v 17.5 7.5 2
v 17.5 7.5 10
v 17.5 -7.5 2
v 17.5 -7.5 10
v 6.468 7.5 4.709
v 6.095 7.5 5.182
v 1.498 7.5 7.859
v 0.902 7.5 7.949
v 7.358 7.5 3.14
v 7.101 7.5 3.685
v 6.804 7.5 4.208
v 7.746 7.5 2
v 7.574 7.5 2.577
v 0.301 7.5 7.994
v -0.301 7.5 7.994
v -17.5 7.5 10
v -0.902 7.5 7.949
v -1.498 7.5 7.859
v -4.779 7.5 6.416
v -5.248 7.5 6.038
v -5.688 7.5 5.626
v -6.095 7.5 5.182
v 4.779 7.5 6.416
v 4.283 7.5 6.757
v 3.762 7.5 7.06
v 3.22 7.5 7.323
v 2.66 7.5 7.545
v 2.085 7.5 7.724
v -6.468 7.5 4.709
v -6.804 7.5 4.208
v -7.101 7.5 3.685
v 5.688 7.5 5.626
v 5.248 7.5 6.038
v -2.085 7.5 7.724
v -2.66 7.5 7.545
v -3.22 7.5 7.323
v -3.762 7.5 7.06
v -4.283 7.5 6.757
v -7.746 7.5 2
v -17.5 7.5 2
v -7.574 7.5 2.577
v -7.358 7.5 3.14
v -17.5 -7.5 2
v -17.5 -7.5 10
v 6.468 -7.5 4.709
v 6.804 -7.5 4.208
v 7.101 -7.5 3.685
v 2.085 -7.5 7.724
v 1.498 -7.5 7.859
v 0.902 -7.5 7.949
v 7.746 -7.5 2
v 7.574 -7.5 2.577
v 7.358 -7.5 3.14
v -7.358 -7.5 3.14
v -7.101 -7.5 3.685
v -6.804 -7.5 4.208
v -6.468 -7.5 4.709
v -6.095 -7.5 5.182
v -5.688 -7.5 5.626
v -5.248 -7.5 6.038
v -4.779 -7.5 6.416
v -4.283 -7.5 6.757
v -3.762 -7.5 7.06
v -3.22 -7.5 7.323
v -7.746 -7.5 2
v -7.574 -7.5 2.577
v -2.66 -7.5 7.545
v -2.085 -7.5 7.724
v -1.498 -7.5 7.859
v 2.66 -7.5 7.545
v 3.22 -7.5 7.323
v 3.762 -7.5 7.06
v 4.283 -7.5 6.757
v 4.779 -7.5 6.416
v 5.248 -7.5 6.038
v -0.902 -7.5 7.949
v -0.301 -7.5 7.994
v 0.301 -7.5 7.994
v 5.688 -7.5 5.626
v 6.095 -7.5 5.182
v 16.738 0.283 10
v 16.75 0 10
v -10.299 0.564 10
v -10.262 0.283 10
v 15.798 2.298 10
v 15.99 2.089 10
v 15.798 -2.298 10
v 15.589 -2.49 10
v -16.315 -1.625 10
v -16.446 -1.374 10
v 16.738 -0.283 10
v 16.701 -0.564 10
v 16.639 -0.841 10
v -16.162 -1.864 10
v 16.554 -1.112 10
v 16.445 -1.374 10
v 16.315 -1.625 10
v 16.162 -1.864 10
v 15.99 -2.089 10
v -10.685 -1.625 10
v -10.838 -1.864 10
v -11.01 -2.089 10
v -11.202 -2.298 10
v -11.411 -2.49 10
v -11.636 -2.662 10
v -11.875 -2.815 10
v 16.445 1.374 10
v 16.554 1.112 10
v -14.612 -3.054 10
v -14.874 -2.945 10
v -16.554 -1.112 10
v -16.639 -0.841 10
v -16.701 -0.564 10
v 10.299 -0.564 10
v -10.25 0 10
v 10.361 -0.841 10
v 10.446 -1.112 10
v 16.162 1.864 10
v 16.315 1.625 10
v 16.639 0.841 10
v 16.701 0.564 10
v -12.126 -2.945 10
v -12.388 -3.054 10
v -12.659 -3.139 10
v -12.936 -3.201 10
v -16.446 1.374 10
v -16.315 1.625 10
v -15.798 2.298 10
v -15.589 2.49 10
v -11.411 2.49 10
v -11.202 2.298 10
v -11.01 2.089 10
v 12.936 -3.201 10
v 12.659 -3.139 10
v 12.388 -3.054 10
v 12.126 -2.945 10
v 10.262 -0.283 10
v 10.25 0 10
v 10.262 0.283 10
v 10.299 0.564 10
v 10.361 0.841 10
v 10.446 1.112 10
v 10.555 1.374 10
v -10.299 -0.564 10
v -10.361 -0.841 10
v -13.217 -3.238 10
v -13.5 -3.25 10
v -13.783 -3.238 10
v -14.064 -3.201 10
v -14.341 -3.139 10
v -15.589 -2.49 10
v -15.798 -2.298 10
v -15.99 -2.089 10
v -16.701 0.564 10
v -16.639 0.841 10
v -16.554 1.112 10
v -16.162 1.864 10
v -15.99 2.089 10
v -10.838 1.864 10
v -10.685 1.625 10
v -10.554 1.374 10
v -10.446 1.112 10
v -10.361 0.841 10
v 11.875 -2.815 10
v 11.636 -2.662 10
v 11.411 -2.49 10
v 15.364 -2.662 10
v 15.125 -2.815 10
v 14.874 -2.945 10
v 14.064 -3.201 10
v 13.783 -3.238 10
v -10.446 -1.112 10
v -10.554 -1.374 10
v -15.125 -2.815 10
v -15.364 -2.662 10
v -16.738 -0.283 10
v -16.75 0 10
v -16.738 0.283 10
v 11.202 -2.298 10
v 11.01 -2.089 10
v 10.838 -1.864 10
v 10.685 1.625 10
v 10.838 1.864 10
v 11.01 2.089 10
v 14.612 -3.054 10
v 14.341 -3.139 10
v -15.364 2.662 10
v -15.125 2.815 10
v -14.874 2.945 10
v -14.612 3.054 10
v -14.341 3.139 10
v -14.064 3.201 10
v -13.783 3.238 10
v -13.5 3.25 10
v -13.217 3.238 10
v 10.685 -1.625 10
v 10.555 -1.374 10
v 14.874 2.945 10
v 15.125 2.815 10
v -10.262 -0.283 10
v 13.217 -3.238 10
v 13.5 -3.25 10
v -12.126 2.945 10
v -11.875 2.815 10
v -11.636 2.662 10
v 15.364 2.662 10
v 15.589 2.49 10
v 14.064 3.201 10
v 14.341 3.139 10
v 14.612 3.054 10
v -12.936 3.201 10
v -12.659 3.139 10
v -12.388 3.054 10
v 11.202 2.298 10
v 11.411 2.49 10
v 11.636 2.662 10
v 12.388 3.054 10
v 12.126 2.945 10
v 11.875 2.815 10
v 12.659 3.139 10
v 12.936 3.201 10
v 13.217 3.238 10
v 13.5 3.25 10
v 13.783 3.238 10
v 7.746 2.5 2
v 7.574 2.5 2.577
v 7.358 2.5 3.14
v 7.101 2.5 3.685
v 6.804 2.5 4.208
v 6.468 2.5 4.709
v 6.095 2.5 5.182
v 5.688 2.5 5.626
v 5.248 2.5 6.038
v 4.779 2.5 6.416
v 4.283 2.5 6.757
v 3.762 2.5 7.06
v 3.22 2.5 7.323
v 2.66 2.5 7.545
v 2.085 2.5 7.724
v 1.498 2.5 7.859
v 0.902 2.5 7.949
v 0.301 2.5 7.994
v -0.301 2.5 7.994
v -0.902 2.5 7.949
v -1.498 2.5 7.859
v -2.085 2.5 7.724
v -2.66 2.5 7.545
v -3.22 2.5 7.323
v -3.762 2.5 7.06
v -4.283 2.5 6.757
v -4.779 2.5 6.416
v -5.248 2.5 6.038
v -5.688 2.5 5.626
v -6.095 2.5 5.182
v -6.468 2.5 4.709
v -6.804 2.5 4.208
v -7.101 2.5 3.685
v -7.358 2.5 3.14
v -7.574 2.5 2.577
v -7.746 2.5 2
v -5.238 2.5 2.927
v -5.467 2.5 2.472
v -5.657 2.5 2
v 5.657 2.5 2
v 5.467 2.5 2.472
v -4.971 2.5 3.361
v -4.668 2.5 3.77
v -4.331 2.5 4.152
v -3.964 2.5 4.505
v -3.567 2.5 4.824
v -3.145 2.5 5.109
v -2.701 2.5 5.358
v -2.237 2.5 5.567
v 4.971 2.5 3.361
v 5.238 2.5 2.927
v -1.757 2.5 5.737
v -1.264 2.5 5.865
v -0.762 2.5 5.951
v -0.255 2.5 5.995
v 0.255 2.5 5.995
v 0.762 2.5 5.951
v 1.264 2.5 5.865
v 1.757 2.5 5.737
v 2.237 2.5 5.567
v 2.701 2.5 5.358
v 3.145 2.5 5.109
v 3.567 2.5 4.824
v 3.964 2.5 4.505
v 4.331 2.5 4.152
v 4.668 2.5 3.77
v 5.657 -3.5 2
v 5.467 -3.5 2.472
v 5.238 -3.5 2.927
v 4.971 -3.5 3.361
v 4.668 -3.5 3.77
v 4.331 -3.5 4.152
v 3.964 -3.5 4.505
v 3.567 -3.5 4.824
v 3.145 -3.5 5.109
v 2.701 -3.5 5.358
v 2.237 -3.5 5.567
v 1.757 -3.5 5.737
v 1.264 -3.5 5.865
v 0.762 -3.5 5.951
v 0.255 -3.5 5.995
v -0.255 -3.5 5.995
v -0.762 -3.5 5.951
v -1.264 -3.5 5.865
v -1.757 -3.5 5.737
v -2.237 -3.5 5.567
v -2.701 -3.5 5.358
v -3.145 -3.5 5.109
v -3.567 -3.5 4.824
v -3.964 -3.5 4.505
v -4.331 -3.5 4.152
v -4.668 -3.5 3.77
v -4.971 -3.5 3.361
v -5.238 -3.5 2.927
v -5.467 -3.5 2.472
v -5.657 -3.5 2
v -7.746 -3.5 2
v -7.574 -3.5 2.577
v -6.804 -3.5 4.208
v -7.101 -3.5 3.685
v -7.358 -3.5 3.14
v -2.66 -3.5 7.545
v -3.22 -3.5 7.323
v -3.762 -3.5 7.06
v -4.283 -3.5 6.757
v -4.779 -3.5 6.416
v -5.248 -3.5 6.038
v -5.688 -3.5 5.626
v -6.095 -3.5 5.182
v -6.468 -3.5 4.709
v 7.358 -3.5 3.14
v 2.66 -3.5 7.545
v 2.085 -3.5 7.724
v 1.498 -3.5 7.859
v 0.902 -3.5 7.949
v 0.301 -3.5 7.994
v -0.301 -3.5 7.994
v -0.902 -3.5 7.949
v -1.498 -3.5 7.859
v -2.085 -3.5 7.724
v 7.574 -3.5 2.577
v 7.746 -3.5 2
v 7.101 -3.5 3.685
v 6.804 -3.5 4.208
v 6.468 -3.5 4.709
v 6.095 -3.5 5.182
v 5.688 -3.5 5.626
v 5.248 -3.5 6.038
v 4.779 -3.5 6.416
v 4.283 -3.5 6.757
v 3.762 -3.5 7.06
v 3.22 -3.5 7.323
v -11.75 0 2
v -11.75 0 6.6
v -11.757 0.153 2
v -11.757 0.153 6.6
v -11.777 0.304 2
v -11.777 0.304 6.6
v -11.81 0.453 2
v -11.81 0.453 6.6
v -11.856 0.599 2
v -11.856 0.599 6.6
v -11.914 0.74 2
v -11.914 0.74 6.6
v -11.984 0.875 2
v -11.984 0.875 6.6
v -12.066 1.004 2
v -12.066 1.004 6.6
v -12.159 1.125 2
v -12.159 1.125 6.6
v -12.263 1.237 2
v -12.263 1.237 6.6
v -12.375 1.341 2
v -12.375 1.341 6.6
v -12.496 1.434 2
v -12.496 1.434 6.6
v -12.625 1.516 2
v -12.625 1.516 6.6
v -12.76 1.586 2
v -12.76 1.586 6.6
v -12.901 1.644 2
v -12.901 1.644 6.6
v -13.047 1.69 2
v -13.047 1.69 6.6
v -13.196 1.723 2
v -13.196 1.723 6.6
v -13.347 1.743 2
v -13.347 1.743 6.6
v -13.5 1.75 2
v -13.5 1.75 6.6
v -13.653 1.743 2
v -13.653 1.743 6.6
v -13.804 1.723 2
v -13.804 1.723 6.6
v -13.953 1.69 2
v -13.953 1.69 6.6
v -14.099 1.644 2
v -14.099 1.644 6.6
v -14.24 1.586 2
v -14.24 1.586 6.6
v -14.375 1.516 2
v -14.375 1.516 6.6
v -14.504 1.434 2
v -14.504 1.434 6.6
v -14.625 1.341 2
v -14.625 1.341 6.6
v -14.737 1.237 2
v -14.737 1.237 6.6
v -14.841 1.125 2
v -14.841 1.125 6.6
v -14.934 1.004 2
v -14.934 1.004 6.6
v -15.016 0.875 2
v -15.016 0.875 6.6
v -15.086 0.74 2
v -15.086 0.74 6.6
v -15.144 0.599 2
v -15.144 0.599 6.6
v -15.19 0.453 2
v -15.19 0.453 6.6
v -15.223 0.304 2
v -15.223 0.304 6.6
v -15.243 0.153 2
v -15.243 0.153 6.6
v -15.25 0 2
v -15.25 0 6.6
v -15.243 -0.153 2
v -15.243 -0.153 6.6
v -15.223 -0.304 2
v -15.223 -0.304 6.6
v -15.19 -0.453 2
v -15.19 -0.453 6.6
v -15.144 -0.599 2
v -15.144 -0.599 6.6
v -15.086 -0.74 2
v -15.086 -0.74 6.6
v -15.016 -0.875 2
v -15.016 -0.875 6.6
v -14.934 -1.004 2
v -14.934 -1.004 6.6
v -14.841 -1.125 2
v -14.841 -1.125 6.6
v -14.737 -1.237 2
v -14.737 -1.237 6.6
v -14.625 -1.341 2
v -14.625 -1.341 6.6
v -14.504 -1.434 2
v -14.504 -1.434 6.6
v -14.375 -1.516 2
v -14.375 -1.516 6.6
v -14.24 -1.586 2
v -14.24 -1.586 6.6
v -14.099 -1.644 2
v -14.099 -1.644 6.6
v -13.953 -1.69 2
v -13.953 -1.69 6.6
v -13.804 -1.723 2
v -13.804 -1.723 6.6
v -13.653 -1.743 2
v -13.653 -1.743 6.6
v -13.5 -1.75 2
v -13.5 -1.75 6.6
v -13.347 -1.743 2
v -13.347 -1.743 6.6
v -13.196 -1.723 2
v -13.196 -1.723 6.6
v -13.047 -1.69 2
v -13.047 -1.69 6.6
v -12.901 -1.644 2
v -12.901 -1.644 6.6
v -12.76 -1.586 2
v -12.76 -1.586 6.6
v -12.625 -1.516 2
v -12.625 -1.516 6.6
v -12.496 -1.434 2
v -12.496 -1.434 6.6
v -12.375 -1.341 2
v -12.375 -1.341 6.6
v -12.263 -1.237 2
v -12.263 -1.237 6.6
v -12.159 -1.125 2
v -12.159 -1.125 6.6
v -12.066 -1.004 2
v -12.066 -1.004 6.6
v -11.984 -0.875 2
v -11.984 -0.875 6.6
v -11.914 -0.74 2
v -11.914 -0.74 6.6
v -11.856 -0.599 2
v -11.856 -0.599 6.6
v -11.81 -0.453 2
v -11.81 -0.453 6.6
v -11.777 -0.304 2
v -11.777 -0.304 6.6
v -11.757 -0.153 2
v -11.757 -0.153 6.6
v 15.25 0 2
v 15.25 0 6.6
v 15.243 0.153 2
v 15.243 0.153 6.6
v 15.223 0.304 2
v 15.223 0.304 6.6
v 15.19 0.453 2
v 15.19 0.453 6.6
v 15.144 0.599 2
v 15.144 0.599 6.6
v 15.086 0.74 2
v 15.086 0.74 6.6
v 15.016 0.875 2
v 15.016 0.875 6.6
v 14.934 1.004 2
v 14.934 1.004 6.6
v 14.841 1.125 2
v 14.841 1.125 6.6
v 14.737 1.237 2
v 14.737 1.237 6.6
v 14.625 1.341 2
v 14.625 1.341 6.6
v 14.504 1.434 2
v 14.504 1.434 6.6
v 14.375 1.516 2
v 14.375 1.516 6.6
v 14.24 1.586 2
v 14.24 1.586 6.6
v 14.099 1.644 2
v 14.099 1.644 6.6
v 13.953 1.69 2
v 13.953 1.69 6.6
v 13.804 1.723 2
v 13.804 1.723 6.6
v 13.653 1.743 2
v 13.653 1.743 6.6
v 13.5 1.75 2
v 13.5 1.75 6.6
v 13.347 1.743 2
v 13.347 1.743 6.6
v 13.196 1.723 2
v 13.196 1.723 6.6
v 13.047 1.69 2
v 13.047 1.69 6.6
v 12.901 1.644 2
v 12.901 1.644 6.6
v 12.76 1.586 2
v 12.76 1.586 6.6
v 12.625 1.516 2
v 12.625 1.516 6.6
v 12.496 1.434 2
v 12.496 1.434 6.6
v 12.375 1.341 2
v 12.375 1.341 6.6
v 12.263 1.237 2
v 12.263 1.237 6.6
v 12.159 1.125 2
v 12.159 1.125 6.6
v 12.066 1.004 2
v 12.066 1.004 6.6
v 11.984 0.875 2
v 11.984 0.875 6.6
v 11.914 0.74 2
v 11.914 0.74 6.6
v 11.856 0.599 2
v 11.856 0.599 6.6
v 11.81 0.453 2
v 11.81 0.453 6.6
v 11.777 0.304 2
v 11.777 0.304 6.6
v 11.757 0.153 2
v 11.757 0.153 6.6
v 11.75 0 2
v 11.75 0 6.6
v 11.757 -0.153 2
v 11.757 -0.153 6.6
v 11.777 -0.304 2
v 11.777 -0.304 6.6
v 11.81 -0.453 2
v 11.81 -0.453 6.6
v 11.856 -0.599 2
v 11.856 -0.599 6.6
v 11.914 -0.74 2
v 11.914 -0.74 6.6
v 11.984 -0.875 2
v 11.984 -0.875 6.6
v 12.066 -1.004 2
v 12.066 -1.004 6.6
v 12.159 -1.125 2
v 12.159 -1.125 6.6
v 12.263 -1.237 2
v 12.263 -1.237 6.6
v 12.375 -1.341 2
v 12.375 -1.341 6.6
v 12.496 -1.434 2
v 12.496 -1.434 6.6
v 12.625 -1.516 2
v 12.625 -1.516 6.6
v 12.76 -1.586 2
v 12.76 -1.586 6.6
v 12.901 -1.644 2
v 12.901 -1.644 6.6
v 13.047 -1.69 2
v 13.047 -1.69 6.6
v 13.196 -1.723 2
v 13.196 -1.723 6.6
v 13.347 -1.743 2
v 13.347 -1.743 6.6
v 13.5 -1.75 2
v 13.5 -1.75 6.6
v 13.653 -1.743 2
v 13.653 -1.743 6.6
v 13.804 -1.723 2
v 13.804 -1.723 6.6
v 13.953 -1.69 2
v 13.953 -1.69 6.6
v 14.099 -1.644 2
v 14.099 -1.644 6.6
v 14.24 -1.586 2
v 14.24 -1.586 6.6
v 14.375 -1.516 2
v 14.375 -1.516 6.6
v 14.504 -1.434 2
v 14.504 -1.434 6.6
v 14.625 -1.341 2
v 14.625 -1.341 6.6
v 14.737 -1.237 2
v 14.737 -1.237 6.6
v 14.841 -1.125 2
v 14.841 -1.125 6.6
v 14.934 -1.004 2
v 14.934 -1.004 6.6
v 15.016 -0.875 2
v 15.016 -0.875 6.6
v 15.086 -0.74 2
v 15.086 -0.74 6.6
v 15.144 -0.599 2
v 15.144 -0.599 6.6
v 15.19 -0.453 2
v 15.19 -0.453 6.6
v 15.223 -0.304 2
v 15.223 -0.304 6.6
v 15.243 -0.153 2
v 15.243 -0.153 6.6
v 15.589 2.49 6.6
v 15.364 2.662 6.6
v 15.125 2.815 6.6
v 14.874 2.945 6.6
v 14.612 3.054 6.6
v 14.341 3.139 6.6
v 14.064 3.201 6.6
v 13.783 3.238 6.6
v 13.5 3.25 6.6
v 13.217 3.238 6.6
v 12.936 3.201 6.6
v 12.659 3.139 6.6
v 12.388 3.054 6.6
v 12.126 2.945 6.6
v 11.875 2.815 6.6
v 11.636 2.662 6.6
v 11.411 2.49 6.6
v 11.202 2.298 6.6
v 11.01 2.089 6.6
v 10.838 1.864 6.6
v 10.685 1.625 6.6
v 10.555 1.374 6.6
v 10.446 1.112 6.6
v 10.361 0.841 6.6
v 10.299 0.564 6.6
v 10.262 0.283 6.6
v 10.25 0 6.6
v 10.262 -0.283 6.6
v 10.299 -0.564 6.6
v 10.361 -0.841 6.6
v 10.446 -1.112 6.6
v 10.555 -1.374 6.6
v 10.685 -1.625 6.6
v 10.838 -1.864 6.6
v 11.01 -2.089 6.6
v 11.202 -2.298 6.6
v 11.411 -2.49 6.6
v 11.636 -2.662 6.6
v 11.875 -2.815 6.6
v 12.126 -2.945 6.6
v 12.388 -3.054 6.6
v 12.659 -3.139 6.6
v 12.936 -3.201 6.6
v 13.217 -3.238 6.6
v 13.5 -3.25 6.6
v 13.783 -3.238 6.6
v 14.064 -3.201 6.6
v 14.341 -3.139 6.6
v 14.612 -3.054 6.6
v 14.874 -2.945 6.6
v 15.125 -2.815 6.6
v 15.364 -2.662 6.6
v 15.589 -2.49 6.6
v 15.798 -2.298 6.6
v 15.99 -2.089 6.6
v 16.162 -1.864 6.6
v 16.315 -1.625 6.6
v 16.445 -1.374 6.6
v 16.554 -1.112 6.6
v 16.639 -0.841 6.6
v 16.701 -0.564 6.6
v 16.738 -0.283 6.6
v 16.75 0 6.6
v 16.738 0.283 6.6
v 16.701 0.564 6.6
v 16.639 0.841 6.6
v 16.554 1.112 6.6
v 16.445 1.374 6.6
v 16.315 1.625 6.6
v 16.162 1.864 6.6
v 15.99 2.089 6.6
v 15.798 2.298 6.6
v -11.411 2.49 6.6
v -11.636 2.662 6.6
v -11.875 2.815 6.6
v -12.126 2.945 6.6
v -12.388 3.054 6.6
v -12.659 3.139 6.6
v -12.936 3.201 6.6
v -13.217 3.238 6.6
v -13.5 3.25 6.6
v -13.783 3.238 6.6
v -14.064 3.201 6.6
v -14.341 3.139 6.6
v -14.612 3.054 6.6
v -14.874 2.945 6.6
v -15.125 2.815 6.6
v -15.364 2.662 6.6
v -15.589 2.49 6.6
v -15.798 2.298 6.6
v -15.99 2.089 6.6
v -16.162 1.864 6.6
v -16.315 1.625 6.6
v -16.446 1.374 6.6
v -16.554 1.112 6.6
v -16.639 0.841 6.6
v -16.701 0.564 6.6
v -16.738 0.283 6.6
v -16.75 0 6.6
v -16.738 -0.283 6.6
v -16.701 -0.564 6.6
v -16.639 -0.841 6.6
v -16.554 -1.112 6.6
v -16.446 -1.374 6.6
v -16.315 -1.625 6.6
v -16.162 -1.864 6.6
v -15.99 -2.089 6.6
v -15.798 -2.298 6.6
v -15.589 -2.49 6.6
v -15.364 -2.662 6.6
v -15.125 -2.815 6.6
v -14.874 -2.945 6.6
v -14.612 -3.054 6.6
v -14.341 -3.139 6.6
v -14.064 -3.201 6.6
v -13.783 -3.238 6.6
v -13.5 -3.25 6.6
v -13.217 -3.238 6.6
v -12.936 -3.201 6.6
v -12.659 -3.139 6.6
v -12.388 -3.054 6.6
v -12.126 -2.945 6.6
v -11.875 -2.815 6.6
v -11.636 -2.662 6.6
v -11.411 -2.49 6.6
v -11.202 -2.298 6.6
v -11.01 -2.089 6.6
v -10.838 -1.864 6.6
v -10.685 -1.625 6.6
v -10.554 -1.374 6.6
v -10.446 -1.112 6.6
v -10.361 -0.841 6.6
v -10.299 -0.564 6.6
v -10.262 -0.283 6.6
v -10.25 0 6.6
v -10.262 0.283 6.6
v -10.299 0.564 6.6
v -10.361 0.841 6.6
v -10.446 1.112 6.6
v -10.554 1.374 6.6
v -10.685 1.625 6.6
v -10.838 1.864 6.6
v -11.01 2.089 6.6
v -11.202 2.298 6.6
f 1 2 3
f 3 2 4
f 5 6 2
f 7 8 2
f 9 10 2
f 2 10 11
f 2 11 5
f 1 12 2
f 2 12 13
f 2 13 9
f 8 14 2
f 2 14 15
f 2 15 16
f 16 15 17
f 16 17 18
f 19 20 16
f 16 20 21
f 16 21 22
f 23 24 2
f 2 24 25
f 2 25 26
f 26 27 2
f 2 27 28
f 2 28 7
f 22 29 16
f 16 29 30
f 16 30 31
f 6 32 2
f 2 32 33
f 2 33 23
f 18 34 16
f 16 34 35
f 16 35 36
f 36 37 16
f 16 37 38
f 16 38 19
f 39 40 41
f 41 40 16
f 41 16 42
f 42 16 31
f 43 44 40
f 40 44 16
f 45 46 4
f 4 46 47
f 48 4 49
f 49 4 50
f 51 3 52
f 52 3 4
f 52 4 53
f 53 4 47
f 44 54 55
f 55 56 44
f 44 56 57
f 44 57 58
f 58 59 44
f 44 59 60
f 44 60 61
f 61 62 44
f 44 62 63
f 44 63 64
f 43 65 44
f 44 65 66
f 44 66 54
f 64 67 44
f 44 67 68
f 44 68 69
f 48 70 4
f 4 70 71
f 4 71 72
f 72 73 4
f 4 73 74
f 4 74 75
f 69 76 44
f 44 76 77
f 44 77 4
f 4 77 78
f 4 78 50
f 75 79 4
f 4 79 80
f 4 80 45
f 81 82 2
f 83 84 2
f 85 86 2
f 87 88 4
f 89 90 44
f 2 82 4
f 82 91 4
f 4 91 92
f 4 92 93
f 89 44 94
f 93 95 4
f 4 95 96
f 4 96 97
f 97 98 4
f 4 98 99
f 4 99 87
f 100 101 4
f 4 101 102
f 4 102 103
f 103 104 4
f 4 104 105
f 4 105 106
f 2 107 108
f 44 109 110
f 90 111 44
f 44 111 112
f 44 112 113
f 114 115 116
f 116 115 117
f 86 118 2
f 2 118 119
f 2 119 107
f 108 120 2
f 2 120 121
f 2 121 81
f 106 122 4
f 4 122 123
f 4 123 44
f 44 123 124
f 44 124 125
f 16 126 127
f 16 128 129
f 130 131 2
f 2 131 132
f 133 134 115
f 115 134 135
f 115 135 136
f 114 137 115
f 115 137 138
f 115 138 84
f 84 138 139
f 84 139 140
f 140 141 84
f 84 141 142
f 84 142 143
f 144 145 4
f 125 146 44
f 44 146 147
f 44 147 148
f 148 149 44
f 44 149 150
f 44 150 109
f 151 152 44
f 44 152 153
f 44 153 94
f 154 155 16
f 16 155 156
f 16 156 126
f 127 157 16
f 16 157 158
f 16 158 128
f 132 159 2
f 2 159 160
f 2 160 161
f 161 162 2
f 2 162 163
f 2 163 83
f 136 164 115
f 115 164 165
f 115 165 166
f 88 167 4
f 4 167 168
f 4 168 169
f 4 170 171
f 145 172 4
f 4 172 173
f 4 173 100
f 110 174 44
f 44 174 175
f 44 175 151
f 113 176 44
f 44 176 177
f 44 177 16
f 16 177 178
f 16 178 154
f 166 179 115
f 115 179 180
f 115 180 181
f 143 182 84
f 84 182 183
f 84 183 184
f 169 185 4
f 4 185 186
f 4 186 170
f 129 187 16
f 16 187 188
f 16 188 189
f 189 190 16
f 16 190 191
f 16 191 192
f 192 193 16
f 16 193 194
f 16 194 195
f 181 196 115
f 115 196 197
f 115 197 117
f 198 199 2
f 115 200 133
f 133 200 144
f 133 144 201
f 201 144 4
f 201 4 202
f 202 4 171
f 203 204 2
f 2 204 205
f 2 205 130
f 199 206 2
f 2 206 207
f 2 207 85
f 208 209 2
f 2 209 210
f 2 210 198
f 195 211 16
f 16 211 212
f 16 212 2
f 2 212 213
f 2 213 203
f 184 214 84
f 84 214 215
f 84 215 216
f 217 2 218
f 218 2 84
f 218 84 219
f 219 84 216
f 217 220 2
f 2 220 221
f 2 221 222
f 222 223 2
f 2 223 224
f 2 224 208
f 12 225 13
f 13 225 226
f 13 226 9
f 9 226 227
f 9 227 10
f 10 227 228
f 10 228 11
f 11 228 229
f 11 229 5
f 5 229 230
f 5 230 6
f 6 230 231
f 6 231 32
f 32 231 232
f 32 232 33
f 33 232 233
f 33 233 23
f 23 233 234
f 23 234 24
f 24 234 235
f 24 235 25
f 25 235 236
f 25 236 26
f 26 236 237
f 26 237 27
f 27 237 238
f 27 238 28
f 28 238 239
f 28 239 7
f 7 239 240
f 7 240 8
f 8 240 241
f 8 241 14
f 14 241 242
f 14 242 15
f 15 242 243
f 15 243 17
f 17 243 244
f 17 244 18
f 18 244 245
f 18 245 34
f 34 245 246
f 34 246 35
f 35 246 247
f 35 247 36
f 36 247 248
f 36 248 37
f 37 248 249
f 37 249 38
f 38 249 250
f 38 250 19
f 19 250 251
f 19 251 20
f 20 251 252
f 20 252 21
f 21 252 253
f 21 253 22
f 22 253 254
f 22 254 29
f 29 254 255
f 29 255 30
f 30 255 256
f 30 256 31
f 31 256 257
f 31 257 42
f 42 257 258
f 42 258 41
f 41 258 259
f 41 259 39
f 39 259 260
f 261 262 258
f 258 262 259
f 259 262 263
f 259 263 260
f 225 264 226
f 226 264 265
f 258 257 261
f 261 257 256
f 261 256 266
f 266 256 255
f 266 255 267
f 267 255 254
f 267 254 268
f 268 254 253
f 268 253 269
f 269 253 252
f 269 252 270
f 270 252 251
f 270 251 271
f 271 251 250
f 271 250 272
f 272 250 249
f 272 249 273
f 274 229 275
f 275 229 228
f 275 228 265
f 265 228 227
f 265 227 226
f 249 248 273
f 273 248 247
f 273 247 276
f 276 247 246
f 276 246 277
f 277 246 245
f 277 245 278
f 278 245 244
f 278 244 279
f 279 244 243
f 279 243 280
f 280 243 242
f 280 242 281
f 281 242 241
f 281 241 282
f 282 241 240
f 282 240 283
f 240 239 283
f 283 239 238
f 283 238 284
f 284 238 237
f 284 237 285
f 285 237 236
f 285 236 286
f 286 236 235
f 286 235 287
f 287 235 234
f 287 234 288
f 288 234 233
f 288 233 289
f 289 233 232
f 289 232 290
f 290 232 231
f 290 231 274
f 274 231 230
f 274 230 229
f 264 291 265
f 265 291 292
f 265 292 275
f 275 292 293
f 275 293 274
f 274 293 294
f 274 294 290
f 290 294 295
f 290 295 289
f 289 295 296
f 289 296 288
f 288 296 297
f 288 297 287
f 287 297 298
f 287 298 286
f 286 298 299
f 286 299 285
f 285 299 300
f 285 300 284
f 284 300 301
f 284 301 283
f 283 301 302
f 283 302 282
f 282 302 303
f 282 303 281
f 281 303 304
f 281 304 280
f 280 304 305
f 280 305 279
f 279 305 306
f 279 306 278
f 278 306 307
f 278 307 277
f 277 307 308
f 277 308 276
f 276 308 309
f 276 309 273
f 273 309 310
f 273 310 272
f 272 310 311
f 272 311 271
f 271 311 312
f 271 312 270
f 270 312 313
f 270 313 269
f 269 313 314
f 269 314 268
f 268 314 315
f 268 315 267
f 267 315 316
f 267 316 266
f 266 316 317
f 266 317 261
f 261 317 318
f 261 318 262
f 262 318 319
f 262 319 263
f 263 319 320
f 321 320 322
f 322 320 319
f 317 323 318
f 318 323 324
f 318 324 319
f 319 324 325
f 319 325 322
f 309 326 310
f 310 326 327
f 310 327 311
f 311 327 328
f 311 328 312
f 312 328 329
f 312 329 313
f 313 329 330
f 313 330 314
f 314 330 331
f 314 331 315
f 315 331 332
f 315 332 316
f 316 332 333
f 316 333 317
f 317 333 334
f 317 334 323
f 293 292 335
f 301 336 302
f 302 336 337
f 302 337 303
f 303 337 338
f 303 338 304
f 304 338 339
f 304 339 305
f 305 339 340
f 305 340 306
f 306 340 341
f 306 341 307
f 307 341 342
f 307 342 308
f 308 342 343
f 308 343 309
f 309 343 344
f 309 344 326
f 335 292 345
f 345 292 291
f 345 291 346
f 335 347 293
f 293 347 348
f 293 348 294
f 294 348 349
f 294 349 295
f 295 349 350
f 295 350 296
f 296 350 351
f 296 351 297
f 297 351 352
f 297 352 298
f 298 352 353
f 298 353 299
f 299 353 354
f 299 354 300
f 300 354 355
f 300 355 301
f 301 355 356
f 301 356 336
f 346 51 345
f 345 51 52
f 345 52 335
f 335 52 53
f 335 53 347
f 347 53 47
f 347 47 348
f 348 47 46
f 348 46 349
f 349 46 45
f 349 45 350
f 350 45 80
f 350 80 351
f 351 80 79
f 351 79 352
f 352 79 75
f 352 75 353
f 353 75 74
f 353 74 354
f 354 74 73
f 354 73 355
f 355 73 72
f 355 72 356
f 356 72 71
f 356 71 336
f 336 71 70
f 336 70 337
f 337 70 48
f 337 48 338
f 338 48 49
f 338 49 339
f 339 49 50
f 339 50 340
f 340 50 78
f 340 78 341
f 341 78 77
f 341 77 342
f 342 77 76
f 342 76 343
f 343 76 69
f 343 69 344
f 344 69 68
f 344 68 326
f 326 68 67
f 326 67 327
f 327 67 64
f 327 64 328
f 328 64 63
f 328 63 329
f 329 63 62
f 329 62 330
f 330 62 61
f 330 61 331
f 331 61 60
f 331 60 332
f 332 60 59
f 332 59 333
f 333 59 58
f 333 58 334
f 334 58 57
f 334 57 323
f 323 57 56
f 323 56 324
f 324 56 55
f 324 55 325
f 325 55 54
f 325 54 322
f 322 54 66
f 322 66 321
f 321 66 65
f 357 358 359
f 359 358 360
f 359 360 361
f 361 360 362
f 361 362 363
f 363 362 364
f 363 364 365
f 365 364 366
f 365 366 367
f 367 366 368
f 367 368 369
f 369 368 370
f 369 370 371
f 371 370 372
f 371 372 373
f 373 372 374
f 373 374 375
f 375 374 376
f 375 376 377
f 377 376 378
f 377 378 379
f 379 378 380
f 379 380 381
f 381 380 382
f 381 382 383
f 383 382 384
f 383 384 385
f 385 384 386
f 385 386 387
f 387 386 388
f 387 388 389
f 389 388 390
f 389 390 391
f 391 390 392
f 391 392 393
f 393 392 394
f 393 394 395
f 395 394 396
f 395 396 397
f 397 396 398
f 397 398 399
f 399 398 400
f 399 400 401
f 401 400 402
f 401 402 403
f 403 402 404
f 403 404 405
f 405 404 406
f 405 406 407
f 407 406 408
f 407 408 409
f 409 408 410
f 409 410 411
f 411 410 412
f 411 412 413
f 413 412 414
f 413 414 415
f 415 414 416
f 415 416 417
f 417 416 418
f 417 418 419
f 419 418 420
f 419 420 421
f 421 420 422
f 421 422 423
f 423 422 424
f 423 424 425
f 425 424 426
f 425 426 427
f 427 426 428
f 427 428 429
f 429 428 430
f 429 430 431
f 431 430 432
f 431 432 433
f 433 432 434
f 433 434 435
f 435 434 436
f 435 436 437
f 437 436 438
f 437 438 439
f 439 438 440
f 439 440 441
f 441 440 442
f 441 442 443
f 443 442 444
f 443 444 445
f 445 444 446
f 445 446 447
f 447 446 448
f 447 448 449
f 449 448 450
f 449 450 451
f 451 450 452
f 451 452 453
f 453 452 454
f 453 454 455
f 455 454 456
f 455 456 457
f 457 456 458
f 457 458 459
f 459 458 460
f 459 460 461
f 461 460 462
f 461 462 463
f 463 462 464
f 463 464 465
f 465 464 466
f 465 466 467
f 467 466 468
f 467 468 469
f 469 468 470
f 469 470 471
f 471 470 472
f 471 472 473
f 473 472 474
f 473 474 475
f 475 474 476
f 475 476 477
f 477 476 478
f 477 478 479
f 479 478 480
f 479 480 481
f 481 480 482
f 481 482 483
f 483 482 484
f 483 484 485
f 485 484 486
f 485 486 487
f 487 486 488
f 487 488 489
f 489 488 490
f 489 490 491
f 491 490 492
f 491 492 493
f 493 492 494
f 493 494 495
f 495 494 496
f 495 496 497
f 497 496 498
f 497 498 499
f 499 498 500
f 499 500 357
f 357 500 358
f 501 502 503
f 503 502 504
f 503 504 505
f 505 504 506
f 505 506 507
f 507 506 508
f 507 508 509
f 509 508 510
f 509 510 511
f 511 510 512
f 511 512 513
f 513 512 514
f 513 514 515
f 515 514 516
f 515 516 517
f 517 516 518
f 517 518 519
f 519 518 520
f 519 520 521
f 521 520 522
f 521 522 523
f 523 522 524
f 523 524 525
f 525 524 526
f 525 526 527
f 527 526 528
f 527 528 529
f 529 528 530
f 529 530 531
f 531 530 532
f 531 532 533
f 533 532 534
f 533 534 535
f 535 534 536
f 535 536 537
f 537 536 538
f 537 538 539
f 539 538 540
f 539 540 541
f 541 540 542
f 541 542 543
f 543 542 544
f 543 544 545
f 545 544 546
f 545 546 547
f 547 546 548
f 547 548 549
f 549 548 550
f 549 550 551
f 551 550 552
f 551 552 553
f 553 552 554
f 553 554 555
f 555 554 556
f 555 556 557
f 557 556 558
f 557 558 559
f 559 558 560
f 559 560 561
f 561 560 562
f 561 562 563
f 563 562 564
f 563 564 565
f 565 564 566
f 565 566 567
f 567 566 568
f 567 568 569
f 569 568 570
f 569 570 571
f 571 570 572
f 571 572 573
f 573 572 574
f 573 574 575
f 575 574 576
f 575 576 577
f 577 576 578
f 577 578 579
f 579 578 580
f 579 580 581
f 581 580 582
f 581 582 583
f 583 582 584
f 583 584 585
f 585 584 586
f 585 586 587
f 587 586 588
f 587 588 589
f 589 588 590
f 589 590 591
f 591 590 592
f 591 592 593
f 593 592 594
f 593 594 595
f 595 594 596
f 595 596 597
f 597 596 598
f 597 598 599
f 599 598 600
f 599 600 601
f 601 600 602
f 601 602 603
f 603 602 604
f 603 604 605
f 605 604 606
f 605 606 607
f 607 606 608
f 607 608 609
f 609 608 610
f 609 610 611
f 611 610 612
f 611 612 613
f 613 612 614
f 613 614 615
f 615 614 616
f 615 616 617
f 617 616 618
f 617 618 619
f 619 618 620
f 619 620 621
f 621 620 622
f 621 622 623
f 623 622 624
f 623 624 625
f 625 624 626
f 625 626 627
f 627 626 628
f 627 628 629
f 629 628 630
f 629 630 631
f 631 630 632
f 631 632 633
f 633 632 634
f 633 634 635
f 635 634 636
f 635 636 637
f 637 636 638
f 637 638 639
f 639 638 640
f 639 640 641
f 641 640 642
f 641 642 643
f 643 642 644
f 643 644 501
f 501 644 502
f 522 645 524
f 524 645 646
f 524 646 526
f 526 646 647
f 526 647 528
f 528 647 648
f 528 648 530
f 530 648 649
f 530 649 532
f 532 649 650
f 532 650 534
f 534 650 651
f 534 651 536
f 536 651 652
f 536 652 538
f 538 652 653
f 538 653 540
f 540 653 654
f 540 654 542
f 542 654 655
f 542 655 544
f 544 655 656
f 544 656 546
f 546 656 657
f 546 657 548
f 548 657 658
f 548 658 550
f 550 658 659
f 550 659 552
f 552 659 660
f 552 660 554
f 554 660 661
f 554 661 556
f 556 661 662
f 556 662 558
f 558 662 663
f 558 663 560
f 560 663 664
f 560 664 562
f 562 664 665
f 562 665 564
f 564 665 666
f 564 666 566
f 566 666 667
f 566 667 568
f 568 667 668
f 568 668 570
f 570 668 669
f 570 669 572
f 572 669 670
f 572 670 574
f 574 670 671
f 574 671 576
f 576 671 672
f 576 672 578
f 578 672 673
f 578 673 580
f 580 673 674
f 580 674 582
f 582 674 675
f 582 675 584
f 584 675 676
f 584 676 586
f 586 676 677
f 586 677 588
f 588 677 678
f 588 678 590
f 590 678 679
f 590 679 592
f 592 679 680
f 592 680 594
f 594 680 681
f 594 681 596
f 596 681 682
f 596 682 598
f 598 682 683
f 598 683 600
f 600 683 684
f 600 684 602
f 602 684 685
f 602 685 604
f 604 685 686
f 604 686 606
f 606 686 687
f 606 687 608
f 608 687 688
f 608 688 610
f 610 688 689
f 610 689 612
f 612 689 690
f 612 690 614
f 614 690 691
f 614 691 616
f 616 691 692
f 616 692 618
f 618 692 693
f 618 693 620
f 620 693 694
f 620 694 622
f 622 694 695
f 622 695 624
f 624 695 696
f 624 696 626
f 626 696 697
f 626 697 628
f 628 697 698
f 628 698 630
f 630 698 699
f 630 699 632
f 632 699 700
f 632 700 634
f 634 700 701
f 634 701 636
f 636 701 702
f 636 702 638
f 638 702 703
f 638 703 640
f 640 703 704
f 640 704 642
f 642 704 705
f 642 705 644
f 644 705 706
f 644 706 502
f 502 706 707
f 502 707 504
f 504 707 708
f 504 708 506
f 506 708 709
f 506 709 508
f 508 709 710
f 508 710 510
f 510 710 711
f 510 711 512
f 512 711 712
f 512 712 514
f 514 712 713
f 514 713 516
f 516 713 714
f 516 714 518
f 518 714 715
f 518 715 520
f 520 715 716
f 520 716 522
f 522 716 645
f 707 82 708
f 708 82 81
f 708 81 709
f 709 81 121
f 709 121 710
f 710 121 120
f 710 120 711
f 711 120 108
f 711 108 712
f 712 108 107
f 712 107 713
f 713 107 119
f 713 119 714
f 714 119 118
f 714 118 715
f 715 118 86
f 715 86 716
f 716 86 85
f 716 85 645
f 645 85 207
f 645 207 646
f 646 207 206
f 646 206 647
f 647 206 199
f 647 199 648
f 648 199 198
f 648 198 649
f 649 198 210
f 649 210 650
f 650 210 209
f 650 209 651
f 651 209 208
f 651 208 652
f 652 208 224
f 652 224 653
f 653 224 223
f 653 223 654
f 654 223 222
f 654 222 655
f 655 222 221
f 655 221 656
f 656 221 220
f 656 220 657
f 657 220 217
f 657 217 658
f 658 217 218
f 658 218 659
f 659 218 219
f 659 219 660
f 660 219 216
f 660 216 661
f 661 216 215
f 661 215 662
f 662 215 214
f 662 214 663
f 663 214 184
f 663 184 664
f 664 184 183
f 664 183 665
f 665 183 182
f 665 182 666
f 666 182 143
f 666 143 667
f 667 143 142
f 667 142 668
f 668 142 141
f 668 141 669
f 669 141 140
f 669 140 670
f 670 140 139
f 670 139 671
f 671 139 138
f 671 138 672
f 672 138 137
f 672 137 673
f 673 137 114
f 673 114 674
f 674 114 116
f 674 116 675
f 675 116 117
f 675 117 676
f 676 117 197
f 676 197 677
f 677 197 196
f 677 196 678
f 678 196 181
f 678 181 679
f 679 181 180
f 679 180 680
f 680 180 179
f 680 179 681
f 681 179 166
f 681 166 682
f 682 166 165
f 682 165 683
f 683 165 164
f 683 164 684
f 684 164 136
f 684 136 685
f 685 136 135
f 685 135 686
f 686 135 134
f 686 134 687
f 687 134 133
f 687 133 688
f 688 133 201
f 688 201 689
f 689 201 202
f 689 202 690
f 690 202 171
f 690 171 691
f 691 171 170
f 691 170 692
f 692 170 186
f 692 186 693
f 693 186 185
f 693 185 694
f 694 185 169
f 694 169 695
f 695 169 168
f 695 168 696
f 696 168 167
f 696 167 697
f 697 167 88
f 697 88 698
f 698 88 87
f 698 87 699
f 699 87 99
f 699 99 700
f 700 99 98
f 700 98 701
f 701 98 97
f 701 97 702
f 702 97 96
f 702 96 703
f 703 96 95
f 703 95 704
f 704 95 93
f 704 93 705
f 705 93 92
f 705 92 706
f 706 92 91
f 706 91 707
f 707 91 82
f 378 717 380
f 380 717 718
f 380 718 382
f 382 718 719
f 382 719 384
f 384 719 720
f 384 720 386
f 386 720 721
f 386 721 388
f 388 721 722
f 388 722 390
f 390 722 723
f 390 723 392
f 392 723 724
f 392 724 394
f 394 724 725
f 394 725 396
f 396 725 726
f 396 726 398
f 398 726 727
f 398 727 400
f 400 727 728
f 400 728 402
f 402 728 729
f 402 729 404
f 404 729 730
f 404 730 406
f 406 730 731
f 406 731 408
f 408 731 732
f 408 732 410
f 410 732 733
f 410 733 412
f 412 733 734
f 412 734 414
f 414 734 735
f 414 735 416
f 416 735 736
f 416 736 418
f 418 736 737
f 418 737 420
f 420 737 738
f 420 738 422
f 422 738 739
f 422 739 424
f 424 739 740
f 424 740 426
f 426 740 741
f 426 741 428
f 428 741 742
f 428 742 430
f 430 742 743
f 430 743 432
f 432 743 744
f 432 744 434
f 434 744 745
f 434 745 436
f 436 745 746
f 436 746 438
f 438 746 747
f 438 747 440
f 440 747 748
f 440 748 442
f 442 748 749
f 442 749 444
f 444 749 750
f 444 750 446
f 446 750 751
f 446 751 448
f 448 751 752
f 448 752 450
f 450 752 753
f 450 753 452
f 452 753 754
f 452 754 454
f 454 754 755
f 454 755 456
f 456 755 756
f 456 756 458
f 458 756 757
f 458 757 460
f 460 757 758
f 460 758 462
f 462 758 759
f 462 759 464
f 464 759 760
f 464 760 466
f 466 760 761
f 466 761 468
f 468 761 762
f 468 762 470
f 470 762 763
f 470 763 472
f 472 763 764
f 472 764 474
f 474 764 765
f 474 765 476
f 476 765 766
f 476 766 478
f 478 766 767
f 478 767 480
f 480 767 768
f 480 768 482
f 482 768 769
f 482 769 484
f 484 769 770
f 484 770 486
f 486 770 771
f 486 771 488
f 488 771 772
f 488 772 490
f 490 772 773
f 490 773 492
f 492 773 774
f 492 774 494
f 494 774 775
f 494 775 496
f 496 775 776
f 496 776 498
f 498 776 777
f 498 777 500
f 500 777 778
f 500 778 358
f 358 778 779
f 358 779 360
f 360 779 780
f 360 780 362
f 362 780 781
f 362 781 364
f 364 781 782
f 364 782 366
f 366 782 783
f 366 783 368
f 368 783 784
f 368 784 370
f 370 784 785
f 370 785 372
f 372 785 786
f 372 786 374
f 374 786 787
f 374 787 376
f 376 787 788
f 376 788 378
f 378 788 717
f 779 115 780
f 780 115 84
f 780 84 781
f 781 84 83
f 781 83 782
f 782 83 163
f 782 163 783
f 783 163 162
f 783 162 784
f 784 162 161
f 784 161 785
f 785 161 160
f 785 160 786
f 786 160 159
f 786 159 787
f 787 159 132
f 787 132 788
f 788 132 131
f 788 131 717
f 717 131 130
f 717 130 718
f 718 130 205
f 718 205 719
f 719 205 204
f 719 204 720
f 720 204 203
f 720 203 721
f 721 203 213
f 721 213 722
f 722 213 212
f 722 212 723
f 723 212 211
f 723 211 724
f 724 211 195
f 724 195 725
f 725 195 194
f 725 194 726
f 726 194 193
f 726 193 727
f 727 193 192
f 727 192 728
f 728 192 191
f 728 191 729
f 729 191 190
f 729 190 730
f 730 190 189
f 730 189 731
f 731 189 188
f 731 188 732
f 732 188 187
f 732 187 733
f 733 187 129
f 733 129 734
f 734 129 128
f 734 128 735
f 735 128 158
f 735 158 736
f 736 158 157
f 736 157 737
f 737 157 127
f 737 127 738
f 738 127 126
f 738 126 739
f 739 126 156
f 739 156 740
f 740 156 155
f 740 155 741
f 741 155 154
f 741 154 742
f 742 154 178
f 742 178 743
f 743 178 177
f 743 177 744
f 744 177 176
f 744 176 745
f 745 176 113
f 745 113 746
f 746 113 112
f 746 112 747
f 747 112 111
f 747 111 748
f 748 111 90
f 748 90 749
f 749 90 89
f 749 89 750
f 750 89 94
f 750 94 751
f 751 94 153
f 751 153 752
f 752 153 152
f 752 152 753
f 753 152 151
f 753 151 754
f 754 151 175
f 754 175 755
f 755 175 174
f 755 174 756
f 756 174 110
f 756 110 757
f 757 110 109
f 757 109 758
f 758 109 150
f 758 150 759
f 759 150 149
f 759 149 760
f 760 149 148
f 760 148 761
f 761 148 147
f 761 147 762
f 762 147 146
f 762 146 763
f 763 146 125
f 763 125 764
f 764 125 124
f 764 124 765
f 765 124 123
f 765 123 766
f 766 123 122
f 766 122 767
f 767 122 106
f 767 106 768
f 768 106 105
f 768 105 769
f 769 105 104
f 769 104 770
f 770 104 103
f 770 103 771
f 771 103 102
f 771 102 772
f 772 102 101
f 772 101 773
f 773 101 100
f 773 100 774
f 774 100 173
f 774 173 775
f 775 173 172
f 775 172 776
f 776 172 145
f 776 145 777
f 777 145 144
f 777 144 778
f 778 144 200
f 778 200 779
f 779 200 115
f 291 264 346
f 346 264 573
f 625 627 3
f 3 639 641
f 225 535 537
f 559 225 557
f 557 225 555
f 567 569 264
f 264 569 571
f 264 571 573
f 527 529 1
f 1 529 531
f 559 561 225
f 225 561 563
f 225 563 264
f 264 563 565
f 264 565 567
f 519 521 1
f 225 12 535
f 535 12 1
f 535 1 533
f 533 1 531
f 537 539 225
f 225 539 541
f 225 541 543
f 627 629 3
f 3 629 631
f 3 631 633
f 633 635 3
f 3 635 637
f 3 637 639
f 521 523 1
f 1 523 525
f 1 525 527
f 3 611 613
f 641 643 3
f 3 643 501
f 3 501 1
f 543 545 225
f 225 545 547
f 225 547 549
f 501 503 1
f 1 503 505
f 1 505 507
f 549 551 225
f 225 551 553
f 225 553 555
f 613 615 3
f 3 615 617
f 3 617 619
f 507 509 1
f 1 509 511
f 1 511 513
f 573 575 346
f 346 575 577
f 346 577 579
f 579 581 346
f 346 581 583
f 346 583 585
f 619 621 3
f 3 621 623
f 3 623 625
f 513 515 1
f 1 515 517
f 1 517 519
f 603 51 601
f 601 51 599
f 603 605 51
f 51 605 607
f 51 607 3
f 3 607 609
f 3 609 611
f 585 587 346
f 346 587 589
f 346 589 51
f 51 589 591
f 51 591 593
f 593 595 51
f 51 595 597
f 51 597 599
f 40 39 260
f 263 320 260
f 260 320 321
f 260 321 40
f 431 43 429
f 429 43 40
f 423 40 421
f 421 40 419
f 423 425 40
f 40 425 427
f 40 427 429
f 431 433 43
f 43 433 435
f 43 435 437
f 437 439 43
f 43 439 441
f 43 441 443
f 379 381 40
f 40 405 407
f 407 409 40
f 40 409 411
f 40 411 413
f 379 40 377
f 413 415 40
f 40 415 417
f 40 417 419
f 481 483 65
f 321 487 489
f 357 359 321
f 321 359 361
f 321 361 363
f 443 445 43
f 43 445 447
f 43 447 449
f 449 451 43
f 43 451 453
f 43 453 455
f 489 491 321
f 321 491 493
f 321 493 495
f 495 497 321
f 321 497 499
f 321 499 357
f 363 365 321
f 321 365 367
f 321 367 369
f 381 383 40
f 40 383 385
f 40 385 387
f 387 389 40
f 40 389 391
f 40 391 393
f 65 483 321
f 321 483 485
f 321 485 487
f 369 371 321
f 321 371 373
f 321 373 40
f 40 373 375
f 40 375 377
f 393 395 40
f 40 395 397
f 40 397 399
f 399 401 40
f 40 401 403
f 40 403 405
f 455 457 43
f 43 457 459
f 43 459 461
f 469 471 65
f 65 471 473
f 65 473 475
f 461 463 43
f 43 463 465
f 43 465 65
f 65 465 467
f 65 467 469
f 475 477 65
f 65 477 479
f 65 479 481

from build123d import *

# Parameters (mm, degrees)
SKETCH1_W                                           = 35
SKETCH1_H                                           = 15
BOSS_EXTRUDE1_DEPTH                                 = 10
CUT_REVOLVE1_ANGLE                                  = 180
SKETCH3_R                                           = 1.75
CUT_EXTRUDE1_DEPTH                                  = 22.505813168
CBORE_FOR_M3_HEX_SOCKET_HEAD_CAP_SCREW1_D           = 3.4
CBORE_FOR_M3_HEX_SOCKET_HEAD_CAP_SCREW1_CBORE_D     = 6.5
CBORE_FOR_M3_HEX_SOCKET_HEAD_CAP_SCREW1_CBORE_DEPTH = 3.4
SKETCH6_W                                           = 35
SKETCH6_H                                           = 4
CUT_EXTRUDE2_DEPTH                                  = 26.124689053


with BuildPart() as part:
    # Sketch1 → Boss-Extrude1 (new body)
    with BuildSketch(Plane.XY):
        Rectangle(SKETCH1_W, SKETCH1_H)
    extrude(amount=BOSS_EXTRUDE1_DEPTH)

    # Sketch2 → Cut-Revolve1 (revolve, cut)
    with BuildSketch(Plane(origin=(0, 0, 0), x_dir=(-1, 0, 0), z_dir=(0, 0, -1))):
        Polygon((0, 7.5), (8, 7.5), (8, 2.5), (6, 2.5), (6, -3.5), (8, -3.5), (8, -7.5), (0, -7.5), align=None)
    revolve(axis=Axis((0, 7.5, 0), (0, 1, 0)), revolution_arc=CUT_REVOLVE1_ANGLE, mode=Mode.SUBTRACT)

    # Sketch3 → Cut-Extrude1 (cut, through all)
    with BuildSketch(Plane.XY.offset(10)):
        with Locations((-13.5, 0)):
            Circle(SKETCH3_R)
        with Locations((13.5, 0)):
            Circle(SKETCH3_R)
    extrude(amount=-CUT_EXTRUDE1_DEPTH, mode=Mode.SUBTRACT)

    # CBORE for M3 Hex Socket Head Cap Screw1 (through all)
    with Locations(Plane.XY.offset(10)):
        with Locations((-13.5, 0), (13.5, 0)):
            CounterBoreHole(CBORE_FOR_M3_HEX_SOCKET_HEAD_CAP_SCREW1_D / 2, CBORE_FOR_M3_HEX_SOCKET_HEAD_CAP_SCREW1_CBORE_D / 2, CBORE_FOR_M3_HEX_SOCKET_HEAD_CAP_SCREW1_CBORE_DEPTH)

    # Sketch6 → Cut-Extrude2 (cut, through all)
    with BuildSketch(Plane(origin=(0, 7.5, 0), x_dir=(1, 0, 0), z_dir=(0, 1, 0))):
        Rectangle(SKETCH6_W, SKETCH6_H)
    extrude(amount=-CUT_EXTRUDE2_DEPTH, mode=Mode.SUBTRACT)


solid = part.part
